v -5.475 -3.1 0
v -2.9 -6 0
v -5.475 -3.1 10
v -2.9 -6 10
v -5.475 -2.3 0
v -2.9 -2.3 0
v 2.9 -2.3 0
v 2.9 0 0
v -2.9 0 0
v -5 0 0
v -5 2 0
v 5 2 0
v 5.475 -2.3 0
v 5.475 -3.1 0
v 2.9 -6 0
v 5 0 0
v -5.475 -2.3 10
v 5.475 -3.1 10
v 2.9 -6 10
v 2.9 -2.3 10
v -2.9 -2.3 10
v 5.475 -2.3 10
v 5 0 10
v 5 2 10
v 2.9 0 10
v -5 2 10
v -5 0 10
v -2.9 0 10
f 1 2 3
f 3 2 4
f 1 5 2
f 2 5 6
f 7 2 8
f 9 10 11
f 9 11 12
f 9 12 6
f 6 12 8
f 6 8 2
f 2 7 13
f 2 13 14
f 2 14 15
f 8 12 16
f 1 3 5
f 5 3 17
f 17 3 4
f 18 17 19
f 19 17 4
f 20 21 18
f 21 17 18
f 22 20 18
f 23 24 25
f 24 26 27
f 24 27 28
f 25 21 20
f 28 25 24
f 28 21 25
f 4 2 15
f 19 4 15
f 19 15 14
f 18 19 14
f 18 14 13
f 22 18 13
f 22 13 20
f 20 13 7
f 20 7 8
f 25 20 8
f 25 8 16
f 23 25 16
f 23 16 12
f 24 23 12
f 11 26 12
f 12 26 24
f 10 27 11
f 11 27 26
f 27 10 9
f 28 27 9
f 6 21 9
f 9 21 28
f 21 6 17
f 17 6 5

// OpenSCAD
slotneckw= 6-0.2;
slotthick= 2+0.3;
slotdepth= 3.2+0.6-0.1;
slotwidth= 9.95+1.0;
shoulder=0.8;
edge= (slotwidth-slotneckw)/2;
diagl=3.6;

p1= [0,0];
p2= [slotwidth,0];
p3= [slotwidth,-shoulder];
p4= [slotwidth-edge,-slotdepth];
p5= [edge,-slotdepth];
p6= [0,-shoulder];
p7= [0,0];

module slider_body(width, height, thick) {
	union() {
		translate([-width/2,slotthick,0]) cube([width,thick,height]);
		translate([-slotneckw/2,0,0]) cube([slotneckw, slotthick, height]);
		translate([-slotwidth/2,0,0]) linear_extrude(height=height)
			polygon(points=[ p1,p2,p3,p4,p5,p6,p7 ]);
	}
}

module slider2020(w= 20, h= 20, t=2) {
	translate([0,-slotthick,0]) slider_body(w, h, t);
}

slider2020(w=10, h=10, t=2);
